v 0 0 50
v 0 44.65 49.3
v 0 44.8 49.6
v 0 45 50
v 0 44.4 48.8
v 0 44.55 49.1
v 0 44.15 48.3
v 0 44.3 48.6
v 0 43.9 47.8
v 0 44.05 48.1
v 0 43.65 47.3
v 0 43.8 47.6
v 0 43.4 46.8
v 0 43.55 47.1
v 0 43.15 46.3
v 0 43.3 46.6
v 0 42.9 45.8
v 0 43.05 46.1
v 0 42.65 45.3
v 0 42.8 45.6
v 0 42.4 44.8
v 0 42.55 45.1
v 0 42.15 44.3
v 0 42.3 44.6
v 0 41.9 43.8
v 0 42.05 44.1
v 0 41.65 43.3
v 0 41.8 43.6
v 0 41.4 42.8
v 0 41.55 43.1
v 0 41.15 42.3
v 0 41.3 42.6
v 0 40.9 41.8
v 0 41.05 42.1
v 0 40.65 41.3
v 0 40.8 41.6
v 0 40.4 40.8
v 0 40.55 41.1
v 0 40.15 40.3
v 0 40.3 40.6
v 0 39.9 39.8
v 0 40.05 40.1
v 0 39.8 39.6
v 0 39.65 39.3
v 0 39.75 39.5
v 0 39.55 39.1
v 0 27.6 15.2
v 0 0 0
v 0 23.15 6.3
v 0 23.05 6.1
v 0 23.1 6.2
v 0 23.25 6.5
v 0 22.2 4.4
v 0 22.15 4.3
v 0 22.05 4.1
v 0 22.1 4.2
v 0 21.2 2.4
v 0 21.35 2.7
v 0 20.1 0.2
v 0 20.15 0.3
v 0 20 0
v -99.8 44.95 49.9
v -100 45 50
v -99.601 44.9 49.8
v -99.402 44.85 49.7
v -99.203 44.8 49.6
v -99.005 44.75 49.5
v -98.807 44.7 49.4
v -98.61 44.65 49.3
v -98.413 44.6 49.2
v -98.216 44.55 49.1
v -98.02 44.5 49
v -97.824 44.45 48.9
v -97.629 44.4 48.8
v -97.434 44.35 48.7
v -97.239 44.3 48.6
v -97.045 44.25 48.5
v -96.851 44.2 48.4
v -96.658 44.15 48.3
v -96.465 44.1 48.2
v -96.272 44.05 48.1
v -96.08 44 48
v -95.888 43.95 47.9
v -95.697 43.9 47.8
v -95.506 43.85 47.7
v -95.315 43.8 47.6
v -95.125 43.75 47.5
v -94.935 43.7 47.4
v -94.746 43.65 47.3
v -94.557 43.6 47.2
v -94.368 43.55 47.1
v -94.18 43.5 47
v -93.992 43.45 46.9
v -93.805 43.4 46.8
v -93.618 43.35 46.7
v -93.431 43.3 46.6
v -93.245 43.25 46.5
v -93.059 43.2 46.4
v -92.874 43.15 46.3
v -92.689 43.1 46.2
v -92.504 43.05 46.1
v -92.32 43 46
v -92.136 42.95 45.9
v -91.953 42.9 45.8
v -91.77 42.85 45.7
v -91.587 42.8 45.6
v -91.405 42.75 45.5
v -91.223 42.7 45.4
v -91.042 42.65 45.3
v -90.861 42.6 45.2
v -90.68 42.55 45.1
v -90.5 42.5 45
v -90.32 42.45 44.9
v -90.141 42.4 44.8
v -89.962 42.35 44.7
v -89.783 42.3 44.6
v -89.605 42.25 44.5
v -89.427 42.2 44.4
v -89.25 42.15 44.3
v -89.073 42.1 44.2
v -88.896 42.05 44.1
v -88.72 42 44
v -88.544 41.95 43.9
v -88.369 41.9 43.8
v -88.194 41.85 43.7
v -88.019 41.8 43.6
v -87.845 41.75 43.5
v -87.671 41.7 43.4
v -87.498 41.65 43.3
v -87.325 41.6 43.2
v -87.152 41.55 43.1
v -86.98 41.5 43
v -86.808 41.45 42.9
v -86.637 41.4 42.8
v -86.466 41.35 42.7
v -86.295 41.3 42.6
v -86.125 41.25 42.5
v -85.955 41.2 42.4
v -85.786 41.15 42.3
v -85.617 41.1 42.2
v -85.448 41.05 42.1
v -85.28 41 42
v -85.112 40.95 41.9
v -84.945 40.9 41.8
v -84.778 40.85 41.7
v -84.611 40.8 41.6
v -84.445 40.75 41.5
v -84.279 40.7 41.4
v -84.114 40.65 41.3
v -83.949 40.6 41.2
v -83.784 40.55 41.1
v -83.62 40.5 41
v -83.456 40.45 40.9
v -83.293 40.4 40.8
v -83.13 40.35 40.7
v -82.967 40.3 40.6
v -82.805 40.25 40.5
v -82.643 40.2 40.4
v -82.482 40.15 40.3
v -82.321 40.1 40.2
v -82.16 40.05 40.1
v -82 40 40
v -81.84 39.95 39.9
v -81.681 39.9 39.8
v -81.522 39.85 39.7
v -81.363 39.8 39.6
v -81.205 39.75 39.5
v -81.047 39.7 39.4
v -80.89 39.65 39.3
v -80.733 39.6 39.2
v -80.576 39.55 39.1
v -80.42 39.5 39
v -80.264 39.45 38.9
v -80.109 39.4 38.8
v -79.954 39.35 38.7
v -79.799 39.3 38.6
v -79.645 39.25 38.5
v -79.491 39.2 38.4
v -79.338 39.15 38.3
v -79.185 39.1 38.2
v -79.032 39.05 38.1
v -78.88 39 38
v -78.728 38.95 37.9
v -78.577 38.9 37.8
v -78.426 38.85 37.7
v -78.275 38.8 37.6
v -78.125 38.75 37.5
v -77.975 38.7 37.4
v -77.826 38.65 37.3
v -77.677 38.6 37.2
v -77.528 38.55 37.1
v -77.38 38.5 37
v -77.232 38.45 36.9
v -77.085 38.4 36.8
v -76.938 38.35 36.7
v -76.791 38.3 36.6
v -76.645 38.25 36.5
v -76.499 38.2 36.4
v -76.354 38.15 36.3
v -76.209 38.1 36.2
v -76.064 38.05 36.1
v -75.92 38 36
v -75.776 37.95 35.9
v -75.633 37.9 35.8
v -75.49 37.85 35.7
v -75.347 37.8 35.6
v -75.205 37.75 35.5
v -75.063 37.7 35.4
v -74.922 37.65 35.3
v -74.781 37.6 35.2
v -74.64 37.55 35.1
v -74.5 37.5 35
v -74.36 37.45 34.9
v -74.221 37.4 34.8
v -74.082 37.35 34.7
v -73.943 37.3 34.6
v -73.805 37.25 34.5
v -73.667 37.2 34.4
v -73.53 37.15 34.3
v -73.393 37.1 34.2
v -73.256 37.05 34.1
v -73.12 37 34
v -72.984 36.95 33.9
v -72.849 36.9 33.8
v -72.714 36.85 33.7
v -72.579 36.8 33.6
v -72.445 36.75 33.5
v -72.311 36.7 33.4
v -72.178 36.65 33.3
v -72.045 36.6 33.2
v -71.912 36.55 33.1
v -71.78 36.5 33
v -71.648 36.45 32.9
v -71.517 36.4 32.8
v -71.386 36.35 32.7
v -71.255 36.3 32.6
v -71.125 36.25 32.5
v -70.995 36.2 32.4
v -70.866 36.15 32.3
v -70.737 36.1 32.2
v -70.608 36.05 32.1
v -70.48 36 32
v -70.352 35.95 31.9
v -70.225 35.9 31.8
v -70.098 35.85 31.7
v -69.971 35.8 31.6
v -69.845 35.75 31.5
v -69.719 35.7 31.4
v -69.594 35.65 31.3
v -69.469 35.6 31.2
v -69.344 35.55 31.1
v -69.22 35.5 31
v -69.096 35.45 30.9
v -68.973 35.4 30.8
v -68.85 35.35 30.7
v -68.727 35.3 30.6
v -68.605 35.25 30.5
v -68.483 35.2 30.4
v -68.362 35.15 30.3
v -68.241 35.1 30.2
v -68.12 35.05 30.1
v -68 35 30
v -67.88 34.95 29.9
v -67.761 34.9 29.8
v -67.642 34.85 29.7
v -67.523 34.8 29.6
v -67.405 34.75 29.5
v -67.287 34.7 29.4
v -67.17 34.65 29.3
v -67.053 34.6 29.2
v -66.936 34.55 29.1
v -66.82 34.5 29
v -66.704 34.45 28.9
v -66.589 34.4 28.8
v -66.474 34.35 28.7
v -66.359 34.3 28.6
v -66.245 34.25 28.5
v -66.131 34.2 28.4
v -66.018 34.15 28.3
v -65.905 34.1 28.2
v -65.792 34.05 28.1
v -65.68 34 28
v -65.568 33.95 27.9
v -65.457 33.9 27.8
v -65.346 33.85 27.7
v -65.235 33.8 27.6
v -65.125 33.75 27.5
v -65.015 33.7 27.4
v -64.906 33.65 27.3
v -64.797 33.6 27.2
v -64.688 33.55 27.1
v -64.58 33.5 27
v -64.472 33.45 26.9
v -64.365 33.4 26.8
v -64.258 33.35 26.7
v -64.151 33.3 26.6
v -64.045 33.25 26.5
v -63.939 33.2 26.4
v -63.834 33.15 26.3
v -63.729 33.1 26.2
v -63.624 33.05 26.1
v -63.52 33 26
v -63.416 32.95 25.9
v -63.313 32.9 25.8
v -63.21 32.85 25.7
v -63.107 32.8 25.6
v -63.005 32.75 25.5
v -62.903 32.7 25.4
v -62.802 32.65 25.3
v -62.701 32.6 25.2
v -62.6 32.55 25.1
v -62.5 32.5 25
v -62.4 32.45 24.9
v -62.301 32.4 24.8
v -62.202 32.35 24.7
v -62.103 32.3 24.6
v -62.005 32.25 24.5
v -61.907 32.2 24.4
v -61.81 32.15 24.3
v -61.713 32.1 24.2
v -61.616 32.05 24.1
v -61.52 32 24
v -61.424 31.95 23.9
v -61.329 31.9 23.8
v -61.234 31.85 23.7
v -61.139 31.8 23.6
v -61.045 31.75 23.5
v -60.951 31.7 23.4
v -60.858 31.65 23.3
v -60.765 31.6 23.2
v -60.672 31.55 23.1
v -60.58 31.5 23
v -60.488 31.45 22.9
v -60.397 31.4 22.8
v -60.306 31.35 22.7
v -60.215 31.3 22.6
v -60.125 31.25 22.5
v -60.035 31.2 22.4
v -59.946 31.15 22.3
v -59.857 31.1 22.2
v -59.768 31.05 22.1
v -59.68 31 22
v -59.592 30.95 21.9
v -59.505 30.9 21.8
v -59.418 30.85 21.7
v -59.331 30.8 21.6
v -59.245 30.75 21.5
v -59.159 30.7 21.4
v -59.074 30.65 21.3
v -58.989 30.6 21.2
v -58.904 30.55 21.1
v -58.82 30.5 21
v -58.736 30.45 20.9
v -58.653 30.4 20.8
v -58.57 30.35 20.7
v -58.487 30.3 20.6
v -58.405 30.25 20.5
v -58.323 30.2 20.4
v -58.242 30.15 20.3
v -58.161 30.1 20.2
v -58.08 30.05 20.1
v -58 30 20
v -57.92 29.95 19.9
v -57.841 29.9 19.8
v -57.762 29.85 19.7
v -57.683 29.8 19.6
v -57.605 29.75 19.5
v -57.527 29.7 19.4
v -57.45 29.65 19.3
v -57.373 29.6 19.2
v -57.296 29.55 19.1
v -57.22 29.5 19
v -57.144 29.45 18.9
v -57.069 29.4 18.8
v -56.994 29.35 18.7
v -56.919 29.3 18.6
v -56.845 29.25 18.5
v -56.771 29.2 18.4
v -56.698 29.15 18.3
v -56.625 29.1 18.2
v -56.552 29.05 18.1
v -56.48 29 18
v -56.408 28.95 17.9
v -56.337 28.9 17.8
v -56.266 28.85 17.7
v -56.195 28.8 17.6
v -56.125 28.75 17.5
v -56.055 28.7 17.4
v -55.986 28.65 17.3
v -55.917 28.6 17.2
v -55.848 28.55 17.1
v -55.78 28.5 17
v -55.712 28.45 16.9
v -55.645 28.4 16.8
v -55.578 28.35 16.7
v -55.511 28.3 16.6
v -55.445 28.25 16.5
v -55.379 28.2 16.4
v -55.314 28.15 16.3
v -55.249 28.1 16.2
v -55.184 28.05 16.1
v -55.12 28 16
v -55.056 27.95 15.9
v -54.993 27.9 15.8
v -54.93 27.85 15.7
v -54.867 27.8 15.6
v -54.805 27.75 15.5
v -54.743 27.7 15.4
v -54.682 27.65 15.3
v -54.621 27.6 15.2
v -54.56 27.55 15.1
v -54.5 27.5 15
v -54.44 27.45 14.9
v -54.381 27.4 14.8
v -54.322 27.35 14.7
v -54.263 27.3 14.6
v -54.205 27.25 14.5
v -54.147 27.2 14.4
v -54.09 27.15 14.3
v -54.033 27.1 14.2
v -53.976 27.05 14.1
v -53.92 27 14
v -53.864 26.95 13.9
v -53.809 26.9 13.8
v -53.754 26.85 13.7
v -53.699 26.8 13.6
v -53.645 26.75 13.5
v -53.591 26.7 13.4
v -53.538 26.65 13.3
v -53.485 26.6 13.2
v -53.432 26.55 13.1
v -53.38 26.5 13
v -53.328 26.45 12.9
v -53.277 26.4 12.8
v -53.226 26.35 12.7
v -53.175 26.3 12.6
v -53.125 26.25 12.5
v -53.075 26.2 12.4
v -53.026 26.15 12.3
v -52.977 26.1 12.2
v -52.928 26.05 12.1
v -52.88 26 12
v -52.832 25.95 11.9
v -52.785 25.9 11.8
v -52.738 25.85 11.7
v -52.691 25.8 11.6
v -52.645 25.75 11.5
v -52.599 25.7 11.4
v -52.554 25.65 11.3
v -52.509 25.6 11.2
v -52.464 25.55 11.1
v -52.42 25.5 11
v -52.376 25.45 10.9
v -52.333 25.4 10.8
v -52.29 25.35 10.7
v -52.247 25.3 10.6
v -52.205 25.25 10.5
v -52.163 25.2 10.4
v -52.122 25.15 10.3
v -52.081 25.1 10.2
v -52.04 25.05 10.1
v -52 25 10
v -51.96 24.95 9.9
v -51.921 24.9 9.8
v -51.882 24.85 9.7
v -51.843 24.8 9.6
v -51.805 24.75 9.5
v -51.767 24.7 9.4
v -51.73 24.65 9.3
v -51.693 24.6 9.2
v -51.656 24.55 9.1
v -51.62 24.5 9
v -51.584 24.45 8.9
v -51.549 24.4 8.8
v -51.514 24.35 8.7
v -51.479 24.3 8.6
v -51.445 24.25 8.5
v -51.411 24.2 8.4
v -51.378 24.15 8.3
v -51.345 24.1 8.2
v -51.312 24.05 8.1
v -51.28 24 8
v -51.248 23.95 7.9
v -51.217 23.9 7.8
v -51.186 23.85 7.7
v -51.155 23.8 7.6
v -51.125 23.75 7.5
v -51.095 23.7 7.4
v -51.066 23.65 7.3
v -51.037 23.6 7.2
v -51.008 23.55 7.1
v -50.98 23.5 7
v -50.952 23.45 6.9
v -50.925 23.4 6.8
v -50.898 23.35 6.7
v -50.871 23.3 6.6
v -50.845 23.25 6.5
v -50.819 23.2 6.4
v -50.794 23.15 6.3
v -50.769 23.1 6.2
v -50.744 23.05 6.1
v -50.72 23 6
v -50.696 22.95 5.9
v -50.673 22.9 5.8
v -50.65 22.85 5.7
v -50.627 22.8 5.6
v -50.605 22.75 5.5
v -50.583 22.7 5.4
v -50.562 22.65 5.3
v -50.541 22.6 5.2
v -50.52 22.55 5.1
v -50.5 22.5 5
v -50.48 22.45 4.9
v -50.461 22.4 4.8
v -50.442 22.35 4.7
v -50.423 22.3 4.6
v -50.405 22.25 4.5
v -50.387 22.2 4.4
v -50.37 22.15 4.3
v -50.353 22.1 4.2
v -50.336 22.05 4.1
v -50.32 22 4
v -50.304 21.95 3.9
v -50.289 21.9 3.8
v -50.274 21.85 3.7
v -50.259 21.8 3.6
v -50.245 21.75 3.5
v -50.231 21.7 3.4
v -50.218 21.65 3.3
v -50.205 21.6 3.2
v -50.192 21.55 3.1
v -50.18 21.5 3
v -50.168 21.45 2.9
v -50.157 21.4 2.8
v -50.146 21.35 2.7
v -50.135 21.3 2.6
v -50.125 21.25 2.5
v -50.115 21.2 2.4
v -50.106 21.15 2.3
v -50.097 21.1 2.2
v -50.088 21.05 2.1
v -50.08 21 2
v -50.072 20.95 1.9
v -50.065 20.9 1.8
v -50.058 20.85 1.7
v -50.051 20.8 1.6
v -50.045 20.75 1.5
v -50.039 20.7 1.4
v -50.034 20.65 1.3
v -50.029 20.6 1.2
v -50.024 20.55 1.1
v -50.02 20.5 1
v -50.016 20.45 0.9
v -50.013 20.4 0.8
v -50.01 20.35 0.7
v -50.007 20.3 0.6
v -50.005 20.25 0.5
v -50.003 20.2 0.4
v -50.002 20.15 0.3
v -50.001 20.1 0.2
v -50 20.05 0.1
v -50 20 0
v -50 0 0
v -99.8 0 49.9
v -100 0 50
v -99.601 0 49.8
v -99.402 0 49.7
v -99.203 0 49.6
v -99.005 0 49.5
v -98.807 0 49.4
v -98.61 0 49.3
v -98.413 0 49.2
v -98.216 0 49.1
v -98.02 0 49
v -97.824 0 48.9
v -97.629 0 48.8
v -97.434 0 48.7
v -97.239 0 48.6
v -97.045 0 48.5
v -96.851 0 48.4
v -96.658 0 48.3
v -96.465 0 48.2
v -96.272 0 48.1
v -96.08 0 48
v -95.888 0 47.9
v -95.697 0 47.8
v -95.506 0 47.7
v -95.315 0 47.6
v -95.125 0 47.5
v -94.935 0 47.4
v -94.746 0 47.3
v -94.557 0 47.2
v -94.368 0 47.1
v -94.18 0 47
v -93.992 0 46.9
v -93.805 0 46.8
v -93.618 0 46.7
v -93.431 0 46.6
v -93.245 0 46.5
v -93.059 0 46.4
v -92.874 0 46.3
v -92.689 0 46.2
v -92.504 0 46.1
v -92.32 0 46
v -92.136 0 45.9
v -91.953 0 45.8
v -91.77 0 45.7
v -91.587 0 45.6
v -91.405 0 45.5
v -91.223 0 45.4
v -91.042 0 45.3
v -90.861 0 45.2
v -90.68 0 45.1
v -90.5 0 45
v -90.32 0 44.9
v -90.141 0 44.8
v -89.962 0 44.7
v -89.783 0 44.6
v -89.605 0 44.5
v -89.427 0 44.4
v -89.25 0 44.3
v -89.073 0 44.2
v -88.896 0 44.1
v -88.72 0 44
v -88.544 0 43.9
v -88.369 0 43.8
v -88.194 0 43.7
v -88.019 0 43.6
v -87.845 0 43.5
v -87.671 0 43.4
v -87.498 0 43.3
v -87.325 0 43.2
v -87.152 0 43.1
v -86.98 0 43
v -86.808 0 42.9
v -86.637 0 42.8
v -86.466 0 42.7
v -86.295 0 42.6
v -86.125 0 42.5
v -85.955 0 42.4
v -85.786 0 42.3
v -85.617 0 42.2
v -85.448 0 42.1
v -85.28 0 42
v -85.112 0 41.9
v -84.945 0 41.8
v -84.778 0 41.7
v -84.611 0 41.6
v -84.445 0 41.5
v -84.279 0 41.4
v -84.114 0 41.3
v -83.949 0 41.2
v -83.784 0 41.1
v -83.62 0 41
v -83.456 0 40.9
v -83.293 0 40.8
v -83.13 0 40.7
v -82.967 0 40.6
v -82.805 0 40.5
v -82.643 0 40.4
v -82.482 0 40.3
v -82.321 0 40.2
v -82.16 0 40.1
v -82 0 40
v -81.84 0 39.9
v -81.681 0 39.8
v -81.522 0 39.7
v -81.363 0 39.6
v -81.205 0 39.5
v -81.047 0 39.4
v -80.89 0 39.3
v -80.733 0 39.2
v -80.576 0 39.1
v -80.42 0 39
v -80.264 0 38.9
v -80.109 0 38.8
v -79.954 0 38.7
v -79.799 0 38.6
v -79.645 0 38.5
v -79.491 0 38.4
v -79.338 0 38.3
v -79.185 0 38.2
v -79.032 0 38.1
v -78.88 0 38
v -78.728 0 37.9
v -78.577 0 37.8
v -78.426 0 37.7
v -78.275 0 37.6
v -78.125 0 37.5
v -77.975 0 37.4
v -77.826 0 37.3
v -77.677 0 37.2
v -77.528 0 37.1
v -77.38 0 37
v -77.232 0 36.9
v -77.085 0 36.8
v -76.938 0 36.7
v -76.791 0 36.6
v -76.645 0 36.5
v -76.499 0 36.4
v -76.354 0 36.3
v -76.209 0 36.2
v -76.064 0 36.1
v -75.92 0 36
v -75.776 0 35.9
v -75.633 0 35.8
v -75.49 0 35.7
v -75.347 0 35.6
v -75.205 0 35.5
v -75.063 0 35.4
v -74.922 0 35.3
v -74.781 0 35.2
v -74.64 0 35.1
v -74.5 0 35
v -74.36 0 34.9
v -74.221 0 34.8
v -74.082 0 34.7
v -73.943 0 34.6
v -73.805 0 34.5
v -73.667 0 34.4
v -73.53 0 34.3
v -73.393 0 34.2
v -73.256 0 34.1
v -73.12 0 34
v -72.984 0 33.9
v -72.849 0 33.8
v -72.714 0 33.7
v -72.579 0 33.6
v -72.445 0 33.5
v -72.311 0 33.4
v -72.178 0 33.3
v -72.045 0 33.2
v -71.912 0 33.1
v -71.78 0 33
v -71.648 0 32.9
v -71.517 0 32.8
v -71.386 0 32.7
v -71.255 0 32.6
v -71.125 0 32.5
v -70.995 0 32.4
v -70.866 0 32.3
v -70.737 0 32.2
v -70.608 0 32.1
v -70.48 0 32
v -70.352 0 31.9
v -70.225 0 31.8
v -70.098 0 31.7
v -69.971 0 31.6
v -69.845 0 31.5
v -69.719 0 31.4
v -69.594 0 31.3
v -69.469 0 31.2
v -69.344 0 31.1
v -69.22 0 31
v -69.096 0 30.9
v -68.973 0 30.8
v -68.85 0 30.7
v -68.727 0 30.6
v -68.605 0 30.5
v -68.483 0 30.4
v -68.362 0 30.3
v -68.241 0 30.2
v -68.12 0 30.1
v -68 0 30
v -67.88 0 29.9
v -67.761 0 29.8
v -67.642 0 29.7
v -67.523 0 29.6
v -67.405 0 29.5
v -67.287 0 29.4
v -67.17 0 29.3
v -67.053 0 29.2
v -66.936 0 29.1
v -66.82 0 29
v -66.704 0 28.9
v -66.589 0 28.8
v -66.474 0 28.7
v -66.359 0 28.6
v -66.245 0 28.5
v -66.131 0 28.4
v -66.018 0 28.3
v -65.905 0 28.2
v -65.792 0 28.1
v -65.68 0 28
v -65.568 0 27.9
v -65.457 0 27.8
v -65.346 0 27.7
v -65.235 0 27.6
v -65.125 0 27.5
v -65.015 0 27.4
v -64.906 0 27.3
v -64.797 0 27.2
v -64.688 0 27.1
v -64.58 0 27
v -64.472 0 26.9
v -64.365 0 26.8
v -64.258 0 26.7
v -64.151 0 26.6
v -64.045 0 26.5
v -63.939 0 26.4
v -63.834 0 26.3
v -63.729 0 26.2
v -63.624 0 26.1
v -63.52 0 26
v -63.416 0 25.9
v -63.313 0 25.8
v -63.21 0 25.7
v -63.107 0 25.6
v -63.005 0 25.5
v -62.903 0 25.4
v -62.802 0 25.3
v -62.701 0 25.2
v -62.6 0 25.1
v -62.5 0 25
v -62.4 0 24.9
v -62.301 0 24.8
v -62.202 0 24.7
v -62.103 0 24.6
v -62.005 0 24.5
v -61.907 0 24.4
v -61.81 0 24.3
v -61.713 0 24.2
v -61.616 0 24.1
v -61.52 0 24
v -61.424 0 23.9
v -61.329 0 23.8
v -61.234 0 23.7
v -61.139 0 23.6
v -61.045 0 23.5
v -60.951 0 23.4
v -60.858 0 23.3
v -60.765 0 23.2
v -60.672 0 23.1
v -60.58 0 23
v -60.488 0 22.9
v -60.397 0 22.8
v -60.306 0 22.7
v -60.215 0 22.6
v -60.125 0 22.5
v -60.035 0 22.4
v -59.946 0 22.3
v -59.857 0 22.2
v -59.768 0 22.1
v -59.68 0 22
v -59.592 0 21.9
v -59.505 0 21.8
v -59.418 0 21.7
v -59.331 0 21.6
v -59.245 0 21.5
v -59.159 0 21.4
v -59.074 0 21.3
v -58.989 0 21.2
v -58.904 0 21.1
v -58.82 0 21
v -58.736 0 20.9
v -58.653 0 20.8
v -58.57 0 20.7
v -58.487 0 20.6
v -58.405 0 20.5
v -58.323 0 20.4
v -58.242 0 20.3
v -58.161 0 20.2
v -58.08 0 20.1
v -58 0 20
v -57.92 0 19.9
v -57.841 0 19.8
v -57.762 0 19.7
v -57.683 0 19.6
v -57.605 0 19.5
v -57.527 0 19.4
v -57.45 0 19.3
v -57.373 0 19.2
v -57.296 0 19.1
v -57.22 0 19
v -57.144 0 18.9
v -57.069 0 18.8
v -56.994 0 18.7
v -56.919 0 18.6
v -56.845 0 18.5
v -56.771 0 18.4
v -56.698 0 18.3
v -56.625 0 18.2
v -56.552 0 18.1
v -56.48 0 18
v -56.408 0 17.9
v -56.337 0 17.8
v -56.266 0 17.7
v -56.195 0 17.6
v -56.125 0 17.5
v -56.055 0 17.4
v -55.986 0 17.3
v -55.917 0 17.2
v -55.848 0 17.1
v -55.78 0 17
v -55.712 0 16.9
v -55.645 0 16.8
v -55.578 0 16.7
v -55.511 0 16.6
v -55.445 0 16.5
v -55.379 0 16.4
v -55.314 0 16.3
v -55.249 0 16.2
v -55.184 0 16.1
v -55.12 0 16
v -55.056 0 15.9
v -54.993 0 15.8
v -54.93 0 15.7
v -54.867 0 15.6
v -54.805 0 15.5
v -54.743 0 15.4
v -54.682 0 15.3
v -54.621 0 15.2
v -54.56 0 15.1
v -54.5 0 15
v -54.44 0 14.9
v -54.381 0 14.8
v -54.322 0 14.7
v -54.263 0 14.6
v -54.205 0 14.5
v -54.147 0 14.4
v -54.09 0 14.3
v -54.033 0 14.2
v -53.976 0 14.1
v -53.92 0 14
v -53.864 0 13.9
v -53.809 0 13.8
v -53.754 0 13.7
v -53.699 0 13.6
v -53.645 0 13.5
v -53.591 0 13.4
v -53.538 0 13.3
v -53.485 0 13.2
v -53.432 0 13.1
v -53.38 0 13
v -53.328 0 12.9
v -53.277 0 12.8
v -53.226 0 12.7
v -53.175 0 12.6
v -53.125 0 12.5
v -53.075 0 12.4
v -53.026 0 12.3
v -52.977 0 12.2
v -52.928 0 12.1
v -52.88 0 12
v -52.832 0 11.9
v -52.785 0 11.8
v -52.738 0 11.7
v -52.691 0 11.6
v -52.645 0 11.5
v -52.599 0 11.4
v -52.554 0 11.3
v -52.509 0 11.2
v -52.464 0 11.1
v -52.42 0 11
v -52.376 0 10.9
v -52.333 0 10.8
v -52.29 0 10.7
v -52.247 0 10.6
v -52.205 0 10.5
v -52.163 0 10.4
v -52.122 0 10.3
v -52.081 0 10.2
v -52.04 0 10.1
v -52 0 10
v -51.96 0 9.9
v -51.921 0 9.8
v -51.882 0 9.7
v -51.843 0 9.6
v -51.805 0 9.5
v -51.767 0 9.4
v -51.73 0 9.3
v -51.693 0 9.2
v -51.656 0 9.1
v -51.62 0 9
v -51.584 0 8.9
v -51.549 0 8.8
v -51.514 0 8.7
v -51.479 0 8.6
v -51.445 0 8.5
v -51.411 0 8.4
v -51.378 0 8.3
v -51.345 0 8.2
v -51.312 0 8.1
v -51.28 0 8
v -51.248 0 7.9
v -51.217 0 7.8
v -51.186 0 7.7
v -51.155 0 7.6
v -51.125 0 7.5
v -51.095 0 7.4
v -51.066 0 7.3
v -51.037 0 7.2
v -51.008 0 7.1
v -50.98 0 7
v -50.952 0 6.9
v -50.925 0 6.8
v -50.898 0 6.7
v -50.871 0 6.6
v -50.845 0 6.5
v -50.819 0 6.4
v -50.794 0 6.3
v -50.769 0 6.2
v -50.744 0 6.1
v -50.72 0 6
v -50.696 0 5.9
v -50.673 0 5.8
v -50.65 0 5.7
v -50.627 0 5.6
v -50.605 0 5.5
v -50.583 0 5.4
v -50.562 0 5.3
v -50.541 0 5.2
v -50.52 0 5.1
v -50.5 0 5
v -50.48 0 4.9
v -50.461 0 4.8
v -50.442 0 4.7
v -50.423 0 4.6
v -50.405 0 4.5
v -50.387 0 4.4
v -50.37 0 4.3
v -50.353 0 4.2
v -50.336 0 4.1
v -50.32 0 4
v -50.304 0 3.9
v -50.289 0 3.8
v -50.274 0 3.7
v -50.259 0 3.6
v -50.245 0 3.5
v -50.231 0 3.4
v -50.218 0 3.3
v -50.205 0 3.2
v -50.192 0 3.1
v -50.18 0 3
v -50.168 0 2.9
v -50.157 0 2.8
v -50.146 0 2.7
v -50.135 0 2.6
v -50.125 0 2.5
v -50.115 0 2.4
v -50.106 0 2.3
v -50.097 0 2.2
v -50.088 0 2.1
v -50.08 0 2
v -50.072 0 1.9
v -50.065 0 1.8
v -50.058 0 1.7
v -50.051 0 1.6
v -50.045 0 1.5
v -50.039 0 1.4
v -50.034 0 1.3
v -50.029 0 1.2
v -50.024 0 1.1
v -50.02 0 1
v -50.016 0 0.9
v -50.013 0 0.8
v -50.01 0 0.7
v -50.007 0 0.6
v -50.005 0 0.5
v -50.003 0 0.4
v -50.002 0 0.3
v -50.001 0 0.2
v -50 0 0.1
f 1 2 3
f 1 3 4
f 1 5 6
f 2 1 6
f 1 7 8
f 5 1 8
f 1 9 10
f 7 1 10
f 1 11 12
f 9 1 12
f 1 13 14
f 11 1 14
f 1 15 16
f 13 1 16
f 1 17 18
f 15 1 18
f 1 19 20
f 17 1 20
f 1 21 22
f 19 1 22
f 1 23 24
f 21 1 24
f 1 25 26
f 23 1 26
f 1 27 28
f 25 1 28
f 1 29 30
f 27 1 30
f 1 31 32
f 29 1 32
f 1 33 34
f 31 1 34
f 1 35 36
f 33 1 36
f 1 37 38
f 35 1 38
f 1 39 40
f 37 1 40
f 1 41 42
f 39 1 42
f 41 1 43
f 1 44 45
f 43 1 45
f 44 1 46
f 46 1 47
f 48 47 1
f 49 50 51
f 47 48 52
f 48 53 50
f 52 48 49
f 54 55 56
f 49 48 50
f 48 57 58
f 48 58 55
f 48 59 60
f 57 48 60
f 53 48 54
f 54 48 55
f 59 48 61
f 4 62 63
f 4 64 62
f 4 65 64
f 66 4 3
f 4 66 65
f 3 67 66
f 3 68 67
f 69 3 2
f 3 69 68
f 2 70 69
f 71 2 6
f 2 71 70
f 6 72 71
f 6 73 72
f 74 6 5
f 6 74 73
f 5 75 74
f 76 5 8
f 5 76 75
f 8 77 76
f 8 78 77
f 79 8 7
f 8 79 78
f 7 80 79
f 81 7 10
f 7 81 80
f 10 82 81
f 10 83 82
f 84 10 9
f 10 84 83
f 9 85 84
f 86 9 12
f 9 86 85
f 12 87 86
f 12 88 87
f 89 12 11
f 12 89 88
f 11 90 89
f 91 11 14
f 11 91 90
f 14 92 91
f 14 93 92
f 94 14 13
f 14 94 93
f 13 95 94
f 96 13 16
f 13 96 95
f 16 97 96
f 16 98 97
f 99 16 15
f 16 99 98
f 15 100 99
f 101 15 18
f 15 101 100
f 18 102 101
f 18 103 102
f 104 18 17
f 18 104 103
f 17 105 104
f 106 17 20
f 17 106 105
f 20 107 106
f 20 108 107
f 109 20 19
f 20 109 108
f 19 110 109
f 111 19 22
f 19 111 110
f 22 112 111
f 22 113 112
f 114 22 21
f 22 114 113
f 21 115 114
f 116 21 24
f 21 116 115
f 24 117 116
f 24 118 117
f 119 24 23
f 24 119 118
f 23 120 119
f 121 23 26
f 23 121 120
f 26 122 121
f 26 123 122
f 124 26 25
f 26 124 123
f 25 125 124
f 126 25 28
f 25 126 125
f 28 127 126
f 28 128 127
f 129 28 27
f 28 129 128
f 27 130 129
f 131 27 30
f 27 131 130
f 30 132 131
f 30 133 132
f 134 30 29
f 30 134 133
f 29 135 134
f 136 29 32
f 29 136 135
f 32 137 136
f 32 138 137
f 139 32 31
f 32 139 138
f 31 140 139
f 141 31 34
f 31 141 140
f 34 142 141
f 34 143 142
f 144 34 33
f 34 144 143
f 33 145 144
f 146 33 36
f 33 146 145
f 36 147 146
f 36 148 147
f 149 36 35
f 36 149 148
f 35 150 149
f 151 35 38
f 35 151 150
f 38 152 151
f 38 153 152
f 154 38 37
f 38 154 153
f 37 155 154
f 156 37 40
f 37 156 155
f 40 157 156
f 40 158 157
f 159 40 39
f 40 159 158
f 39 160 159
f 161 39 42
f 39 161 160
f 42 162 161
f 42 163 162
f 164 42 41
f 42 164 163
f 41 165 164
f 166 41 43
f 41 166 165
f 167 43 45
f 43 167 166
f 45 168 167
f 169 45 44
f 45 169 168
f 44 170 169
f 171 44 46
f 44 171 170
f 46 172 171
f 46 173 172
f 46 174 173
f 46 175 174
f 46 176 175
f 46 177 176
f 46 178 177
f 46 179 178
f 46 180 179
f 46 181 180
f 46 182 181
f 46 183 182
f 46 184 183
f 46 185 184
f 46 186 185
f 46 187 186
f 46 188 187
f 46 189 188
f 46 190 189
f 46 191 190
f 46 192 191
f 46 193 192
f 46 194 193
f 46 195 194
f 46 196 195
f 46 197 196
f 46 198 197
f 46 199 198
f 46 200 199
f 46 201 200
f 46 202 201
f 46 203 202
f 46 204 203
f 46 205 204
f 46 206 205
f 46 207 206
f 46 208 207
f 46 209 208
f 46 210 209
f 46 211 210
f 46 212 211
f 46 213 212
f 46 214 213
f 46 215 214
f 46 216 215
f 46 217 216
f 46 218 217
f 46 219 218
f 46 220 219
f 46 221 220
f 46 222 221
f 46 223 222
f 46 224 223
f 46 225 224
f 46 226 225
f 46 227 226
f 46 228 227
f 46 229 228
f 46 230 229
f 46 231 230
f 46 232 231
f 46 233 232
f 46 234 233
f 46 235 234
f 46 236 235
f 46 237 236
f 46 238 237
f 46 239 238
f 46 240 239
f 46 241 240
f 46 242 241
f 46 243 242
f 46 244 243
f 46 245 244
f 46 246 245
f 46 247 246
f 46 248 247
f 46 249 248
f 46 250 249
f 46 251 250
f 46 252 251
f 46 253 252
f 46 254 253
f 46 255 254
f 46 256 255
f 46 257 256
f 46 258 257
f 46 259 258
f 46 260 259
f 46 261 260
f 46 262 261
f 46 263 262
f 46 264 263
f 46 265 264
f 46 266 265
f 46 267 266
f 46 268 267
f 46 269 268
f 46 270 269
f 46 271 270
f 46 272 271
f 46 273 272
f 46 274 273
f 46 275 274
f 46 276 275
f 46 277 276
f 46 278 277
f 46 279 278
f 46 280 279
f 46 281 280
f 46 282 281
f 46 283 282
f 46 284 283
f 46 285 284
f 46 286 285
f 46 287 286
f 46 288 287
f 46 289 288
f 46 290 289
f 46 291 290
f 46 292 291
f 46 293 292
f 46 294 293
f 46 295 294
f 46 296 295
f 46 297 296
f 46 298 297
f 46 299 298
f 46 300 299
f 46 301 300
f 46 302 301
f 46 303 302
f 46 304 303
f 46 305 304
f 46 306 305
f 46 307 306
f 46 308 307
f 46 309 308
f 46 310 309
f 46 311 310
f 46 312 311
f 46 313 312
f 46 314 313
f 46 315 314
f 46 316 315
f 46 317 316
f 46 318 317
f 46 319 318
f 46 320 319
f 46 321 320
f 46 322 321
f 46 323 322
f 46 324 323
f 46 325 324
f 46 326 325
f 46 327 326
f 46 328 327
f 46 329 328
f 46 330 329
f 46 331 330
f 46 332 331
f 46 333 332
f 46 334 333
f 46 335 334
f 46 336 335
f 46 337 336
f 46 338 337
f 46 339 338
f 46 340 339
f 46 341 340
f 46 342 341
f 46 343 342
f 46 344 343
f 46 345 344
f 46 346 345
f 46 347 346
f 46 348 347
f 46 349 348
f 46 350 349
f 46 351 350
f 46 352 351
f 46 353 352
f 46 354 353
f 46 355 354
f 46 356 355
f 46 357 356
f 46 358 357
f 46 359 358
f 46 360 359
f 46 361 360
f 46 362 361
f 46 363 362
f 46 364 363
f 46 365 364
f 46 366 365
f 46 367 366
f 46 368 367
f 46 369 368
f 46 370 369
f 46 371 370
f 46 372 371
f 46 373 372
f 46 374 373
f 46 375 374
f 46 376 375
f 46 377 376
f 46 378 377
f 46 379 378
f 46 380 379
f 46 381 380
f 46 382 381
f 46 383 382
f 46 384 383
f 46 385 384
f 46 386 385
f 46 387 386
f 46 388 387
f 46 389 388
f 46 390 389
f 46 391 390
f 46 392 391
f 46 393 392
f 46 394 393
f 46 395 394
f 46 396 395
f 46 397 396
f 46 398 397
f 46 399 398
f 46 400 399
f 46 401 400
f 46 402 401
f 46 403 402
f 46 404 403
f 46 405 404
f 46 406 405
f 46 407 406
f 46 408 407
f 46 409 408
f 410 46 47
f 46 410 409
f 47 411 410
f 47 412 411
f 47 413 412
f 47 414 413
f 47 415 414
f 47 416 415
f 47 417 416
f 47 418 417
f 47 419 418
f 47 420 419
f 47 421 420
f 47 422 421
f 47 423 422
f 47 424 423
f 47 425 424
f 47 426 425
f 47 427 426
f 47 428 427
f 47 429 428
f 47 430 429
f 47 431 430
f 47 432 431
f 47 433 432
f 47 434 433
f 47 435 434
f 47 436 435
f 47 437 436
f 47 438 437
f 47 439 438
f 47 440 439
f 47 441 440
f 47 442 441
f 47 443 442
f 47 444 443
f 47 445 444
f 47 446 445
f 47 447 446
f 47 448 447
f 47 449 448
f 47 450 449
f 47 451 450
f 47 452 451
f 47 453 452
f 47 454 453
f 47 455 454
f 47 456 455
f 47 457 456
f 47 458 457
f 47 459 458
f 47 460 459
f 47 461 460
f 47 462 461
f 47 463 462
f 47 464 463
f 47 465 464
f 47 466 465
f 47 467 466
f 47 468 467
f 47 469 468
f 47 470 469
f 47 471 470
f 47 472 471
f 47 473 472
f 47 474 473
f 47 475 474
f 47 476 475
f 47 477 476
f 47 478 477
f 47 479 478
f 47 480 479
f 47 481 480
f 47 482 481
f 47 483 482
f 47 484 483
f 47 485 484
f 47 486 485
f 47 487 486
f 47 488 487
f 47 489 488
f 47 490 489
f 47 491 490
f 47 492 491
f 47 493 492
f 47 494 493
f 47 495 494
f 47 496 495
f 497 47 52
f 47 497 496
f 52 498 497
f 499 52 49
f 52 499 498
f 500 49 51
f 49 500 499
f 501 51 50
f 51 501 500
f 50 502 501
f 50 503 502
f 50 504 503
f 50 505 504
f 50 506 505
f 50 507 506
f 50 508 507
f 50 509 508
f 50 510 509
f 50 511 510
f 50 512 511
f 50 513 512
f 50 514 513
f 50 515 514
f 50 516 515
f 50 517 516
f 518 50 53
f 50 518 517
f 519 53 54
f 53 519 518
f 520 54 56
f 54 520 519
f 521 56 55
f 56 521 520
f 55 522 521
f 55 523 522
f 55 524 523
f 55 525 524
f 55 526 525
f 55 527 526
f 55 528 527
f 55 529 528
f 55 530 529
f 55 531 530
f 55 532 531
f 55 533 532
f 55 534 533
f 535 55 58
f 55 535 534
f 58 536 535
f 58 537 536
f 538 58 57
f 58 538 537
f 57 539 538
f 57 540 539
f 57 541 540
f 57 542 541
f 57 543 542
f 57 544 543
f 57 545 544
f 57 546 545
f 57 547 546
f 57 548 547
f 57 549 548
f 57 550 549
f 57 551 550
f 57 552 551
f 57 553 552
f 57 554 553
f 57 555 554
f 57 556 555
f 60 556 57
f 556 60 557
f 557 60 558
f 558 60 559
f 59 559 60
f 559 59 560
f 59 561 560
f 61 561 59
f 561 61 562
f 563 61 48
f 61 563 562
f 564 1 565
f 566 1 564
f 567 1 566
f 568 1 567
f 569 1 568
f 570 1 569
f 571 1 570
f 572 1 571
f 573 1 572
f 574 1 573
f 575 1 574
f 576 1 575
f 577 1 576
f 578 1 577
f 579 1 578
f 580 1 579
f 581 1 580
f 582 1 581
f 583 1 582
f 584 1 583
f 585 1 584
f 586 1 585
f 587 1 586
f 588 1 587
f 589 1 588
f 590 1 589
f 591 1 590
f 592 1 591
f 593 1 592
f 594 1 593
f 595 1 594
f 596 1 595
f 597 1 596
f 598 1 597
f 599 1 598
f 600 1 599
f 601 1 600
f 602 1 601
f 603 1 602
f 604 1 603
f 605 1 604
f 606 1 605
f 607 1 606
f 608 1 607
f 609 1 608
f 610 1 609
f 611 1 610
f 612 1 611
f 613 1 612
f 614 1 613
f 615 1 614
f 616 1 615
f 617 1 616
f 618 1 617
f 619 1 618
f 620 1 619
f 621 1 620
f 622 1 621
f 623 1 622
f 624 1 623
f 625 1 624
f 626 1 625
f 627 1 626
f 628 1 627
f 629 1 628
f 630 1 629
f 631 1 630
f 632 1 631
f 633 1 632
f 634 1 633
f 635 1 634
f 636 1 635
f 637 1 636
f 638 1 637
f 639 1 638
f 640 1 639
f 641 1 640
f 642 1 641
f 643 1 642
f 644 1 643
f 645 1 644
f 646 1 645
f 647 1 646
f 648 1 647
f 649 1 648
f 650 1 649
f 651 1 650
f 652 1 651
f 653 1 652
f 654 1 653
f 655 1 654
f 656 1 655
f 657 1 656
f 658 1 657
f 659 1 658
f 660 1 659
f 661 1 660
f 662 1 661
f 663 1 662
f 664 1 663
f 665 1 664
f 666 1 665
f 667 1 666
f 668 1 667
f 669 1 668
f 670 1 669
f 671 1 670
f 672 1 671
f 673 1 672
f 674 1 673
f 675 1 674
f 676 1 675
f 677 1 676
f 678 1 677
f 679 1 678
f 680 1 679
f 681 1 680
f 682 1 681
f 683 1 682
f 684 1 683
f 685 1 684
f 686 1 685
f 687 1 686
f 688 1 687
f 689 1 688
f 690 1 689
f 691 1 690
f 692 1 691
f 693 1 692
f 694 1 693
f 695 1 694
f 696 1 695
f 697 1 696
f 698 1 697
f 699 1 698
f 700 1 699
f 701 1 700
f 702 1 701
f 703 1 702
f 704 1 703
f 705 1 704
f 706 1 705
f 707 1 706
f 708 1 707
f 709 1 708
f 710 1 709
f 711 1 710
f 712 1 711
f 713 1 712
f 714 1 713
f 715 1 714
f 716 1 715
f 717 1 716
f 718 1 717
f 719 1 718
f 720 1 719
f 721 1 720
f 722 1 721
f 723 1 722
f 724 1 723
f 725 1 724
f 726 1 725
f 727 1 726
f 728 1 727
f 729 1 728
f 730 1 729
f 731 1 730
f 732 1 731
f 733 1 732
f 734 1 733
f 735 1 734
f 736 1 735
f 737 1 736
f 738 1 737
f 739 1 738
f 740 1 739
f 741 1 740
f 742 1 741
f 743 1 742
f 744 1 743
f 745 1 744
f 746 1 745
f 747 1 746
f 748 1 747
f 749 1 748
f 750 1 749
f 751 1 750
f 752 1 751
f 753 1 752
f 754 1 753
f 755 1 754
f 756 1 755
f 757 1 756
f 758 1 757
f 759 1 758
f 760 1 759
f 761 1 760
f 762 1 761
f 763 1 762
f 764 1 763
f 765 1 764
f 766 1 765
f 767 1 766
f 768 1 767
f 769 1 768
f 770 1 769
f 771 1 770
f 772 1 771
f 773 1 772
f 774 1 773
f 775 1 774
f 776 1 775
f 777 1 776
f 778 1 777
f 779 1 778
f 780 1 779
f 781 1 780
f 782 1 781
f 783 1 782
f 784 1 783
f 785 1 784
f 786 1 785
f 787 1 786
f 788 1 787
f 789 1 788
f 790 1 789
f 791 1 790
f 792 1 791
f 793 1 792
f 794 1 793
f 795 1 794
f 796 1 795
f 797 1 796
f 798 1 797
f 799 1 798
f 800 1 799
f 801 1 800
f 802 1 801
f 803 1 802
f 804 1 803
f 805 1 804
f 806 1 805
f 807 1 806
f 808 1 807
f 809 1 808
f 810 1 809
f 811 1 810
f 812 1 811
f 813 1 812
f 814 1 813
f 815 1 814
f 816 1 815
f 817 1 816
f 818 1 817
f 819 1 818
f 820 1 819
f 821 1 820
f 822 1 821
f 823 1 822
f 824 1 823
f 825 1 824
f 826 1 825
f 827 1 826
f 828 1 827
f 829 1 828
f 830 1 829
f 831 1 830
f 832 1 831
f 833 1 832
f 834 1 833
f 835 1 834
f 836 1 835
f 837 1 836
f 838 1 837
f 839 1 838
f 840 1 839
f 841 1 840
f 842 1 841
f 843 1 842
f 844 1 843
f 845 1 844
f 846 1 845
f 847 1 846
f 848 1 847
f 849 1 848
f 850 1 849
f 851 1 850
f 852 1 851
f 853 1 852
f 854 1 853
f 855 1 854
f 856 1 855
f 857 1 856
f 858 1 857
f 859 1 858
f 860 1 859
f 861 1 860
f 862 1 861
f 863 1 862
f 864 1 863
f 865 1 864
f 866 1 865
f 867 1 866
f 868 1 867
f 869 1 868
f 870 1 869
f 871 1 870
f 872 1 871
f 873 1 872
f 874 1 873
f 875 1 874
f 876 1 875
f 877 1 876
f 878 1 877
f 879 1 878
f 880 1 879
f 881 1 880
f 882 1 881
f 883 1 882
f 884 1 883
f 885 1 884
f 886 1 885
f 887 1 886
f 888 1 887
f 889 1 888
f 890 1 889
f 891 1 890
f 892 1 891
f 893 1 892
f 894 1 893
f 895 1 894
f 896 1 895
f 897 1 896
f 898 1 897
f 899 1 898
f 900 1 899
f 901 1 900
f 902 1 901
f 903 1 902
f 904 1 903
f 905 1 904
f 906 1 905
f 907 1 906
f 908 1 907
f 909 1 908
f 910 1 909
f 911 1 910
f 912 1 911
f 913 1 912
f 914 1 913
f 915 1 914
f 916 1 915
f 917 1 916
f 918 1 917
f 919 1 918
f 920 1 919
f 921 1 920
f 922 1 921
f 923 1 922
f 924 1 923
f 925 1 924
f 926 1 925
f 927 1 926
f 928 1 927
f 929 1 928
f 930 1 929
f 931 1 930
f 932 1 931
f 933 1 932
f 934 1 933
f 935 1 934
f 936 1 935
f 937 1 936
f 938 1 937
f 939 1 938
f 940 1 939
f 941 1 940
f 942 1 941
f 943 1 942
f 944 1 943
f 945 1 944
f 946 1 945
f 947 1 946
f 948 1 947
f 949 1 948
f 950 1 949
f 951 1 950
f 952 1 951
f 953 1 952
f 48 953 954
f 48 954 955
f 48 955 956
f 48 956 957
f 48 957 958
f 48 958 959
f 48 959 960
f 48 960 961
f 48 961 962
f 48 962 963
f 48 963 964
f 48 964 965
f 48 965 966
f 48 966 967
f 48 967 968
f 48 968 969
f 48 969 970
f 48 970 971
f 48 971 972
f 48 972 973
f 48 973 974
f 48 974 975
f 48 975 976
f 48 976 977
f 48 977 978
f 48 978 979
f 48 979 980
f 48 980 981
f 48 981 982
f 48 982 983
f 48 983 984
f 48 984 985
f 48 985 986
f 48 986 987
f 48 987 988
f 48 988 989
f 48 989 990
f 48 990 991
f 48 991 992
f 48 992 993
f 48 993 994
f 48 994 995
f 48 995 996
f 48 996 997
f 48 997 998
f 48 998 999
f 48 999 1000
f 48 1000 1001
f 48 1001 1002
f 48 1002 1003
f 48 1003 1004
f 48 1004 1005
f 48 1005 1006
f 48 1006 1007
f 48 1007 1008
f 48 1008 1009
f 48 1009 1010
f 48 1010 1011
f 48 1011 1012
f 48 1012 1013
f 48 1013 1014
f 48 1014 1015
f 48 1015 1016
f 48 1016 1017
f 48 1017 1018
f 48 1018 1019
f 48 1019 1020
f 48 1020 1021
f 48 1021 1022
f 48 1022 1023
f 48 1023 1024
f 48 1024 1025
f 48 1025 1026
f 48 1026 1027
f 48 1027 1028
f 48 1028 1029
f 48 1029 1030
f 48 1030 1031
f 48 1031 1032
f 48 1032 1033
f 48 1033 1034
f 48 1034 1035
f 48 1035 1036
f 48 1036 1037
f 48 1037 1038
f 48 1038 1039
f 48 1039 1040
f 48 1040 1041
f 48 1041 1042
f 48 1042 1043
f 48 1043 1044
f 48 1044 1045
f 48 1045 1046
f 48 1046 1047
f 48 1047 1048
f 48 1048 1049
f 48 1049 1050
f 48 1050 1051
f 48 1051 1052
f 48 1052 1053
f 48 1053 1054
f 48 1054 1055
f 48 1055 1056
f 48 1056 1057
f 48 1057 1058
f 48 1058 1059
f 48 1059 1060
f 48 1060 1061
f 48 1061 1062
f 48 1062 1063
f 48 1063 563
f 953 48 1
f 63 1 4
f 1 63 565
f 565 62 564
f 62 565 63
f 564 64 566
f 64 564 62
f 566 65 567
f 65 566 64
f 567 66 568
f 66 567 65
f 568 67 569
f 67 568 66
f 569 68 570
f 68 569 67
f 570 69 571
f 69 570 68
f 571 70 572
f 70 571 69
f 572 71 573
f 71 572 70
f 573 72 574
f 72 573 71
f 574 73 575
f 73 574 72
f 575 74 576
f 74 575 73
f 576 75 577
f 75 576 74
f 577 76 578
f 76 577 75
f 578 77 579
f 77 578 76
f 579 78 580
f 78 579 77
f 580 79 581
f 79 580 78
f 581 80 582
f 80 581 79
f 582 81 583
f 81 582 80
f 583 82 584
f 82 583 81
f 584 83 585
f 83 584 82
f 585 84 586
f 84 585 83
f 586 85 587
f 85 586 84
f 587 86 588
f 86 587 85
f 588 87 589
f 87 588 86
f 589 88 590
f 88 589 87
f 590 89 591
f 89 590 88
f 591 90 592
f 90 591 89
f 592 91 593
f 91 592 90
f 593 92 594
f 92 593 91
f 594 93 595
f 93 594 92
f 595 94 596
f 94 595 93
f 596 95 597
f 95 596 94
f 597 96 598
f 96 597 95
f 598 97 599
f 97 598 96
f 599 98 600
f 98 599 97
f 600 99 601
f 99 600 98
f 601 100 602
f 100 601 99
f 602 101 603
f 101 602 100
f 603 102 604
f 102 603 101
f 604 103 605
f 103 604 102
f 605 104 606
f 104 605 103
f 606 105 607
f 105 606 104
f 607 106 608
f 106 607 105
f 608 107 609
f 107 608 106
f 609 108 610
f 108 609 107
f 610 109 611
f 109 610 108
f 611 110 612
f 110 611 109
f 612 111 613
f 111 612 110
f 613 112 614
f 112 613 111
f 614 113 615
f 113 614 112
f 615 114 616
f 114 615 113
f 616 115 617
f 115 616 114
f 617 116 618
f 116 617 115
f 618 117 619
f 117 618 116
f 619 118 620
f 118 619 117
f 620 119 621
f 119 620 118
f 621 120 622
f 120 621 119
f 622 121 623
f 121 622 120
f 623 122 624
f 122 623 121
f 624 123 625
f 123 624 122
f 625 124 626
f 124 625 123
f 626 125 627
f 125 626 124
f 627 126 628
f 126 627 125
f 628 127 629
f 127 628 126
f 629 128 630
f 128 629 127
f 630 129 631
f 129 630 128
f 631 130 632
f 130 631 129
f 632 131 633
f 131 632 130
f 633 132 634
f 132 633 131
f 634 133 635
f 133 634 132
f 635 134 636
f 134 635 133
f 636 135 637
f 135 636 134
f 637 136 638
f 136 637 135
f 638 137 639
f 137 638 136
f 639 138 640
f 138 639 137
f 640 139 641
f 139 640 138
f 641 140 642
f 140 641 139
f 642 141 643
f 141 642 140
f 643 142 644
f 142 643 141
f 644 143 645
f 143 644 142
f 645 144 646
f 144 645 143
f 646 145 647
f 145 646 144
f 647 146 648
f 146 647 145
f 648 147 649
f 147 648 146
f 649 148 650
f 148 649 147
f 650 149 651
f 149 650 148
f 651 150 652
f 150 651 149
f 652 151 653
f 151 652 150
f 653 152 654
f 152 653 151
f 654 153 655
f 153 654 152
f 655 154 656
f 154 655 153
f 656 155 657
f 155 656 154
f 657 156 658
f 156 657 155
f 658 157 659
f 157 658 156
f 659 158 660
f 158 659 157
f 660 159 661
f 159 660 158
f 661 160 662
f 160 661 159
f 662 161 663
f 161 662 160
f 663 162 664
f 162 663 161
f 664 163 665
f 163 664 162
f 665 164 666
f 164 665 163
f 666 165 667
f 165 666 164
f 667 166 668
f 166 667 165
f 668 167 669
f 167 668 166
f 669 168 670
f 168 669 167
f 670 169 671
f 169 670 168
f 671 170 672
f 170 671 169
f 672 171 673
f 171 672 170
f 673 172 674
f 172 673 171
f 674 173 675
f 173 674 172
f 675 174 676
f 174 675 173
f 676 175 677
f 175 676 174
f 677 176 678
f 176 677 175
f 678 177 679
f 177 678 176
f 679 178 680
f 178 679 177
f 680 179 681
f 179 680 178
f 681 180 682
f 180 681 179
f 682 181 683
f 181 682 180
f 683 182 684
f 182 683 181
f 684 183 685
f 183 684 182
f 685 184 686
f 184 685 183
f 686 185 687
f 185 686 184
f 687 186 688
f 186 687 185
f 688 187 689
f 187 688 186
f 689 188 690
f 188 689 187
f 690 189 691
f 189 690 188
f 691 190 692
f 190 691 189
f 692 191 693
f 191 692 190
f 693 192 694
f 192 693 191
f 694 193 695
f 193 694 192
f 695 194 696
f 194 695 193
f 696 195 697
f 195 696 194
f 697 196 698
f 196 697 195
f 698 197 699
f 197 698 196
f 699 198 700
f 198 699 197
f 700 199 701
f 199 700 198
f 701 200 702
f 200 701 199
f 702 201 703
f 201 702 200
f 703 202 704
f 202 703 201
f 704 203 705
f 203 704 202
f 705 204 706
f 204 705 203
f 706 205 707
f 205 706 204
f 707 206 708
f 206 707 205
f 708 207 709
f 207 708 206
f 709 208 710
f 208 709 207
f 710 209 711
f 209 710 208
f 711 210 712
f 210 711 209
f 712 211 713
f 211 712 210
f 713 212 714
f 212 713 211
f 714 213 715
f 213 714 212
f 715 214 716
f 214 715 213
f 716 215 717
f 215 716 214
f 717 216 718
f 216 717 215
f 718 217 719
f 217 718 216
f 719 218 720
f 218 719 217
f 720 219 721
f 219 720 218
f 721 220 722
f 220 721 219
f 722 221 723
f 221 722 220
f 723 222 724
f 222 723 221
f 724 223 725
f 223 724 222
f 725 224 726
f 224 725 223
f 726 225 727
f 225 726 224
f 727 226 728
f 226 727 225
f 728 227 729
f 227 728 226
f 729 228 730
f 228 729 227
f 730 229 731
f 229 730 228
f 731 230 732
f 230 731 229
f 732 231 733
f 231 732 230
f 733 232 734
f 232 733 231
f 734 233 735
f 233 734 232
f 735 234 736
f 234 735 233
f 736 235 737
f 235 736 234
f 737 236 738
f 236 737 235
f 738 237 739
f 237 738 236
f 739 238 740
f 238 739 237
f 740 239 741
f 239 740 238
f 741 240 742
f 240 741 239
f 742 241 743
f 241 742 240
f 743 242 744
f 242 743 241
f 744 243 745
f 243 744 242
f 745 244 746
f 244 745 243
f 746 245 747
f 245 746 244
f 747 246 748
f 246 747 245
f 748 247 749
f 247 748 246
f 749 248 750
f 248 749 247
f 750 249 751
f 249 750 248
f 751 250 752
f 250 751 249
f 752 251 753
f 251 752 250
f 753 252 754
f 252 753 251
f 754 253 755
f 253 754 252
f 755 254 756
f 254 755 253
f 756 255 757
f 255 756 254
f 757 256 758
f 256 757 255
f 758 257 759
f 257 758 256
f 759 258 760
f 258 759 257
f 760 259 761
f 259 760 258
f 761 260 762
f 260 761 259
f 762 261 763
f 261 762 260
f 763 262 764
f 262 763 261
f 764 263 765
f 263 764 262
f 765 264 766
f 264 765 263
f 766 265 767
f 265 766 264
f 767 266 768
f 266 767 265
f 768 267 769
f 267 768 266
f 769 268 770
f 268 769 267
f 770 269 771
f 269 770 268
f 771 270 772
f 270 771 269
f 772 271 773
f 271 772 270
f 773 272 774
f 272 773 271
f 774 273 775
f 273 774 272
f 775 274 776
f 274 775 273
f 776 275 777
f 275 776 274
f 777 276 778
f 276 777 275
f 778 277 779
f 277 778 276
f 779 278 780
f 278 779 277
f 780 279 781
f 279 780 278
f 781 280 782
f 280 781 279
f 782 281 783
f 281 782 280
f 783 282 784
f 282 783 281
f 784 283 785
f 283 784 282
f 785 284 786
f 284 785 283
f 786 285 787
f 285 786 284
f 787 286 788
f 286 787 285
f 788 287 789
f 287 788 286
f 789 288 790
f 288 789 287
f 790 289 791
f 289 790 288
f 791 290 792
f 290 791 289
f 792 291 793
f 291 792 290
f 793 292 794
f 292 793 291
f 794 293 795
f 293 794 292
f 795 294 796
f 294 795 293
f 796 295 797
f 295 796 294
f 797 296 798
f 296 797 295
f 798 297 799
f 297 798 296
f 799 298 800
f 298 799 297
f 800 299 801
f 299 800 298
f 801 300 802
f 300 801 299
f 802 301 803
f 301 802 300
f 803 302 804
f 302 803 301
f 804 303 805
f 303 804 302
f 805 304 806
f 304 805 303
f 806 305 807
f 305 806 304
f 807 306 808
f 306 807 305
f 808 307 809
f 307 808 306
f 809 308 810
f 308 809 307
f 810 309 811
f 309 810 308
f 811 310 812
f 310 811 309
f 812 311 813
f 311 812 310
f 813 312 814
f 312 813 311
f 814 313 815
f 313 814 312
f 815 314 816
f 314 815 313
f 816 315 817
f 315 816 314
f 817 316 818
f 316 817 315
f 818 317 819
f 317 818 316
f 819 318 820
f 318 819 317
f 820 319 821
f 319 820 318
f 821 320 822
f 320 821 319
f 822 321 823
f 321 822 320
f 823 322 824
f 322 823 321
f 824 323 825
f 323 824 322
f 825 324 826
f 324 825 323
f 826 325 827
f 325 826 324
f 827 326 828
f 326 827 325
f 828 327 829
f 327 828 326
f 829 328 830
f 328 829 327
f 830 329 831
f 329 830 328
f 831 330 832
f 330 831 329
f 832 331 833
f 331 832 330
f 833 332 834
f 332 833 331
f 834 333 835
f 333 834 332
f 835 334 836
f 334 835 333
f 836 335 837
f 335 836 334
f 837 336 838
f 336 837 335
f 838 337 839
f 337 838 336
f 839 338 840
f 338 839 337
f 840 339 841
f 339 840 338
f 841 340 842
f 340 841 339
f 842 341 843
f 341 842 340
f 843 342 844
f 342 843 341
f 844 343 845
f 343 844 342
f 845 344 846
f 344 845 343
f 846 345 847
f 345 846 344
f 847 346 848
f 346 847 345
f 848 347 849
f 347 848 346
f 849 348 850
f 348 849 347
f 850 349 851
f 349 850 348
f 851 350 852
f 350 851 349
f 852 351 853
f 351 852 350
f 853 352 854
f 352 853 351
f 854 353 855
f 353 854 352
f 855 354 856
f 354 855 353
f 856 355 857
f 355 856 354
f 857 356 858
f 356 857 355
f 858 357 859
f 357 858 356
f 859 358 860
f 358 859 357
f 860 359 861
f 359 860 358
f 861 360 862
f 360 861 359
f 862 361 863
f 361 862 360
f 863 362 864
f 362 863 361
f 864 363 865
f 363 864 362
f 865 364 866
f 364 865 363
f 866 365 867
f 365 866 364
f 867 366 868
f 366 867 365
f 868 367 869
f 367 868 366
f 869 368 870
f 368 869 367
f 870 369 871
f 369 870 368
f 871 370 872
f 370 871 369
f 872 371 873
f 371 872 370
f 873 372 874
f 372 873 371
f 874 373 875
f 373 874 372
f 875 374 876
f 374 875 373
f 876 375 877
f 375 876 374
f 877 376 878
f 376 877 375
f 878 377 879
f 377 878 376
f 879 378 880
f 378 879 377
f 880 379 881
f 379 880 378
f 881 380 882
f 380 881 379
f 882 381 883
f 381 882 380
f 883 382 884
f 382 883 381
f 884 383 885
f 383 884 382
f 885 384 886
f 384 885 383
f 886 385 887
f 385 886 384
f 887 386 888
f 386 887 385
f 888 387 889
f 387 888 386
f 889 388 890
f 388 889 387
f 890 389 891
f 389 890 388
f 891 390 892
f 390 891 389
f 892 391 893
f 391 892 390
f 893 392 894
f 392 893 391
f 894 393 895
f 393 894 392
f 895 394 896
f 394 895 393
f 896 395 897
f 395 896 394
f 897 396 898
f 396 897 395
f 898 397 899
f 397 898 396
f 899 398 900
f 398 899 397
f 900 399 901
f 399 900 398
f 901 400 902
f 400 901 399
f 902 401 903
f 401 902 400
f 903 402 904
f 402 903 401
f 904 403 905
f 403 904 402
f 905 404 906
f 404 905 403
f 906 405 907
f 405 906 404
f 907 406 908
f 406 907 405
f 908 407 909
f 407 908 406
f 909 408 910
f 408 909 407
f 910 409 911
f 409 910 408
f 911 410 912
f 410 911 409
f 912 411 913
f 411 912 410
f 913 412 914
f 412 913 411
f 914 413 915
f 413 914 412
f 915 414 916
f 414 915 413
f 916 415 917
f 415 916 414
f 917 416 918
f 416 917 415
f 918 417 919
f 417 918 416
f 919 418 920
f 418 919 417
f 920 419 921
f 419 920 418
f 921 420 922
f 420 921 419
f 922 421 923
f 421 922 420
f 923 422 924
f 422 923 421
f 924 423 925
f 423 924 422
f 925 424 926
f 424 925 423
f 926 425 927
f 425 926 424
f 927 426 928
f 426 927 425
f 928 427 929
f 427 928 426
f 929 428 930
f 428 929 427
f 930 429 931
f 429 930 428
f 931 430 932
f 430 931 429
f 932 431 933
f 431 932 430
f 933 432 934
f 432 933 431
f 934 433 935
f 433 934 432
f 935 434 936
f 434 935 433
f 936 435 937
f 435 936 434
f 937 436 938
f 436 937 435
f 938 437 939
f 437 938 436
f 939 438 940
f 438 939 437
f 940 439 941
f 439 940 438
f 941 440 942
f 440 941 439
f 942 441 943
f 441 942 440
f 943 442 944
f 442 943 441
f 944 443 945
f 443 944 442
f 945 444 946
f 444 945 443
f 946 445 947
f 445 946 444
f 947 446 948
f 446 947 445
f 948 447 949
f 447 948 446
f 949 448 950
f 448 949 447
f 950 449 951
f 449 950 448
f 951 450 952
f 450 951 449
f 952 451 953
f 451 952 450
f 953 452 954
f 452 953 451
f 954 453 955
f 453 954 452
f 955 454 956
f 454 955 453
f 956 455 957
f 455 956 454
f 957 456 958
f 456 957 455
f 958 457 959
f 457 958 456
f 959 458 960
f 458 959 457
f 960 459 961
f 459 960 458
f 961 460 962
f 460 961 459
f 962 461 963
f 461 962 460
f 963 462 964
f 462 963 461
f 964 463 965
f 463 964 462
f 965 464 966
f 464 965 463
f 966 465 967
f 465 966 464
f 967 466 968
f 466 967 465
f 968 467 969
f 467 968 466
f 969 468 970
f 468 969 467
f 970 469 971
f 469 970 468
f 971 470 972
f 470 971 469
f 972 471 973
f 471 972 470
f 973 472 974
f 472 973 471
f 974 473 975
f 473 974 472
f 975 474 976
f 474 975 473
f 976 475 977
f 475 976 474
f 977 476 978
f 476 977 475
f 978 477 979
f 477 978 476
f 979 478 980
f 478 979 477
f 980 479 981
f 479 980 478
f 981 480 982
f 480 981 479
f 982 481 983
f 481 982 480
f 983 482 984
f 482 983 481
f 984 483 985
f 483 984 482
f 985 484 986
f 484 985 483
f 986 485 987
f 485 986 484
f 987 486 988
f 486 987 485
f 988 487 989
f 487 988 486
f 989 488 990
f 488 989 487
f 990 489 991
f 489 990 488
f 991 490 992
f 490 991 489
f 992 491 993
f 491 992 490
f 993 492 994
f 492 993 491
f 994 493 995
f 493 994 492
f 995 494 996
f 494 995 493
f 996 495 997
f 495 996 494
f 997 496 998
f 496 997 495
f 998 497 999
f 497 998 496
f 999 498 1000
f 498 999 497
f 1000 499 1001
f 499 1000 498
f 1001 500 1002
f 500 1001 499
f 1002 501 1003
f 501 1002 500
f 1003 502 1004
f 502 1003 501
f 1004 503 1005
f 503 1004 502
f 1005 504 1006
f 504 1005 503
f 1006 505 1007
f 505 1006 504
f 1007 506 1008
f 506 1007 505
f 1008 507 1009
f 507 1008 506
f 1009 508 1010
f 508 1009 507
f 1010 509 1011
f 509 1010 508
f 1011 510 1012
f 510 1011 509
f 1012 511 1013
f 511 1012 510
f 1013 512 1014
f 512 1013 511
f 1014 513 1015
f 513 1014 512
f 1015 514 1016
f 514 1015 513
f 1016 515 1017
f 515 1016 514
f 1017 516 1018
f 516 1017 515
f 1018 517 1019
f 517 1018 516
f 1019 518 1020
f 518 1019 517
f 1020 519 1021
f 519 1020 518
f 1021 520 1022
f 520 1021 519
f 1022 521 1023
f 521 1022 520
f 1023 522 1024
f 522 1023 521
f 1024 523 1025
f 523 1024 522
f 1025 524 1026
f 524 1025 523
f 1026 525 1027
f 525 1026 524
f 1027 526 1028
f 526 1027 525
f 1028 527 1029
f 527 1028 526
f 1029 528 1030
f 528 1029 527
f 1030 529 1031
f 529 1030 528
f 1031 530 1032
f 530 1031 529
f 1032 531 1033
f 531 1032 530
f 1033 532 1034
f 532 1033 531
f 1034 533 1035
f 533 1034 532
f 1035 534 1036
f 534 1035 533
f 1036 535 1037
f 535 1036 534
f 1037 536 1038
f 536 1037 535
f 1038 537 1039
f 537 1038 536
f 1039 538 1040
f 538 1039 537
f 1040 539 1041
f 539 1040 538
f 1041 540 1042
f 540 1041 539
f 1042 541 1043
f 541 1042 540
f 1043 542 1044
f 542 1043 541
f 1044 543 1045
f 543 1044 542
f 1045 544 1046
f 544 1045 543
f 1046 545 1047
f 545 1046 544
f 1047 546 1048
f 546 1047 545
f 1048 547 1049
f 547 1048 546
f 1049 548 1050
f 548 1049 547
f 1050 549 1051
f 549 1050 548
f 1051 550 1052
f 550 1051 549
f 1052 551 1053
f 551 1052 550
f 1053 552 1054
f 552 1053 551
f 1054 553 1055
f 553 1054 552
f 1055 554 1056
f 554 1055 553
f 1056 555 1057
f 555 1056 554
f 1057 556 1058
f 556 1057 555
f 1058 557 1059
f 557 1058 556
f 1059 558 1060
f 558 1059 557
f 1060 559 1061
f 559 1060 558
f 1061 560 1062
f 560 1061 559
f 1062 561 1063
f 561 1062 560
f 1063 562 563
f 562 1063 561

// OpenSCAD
// File volumeintegral.scad
// Demonstration shape for integral of a product
// (c) 2022 Rich Cameron, for the book Make:Calculus
// Licensed under a Creative Commons, Attribution,
// CC-BY 4.0 international license, per
// https://creativecommons.org/licenses/by/4.0/
// Attribute to Rich Cameron, at
// repository github.com/whosawhatsis/Calculus

zmax = 50;
step = .1;

//function x(z) = 5 * (sqrt(z)  + 10);
function x(z) = z/2 +20;
function y(z) = (1/50) *(z*z +  2500); 

//function x(z) = 10 * cos(z * 10) + 20;
//function y(z) = .01 * pow(z - 50, 2) + 10;

intersection() {
	rotate([0, -90, 0]) linear_extrude(1000, convexity = 5) polygon(concat([[zmax, 0], [0, 0]], [for(z = [0:step:zmax]) [z, x(z)]]));
	rotate([0, -90, 90]) mirror([0, 0, 1]) linear_extrude(1000, convexity = 5) polygon(concat([[zmax, 0], [0, 0]], [for(z = [0:step:zmax]) [z, y(z)]]));
}
